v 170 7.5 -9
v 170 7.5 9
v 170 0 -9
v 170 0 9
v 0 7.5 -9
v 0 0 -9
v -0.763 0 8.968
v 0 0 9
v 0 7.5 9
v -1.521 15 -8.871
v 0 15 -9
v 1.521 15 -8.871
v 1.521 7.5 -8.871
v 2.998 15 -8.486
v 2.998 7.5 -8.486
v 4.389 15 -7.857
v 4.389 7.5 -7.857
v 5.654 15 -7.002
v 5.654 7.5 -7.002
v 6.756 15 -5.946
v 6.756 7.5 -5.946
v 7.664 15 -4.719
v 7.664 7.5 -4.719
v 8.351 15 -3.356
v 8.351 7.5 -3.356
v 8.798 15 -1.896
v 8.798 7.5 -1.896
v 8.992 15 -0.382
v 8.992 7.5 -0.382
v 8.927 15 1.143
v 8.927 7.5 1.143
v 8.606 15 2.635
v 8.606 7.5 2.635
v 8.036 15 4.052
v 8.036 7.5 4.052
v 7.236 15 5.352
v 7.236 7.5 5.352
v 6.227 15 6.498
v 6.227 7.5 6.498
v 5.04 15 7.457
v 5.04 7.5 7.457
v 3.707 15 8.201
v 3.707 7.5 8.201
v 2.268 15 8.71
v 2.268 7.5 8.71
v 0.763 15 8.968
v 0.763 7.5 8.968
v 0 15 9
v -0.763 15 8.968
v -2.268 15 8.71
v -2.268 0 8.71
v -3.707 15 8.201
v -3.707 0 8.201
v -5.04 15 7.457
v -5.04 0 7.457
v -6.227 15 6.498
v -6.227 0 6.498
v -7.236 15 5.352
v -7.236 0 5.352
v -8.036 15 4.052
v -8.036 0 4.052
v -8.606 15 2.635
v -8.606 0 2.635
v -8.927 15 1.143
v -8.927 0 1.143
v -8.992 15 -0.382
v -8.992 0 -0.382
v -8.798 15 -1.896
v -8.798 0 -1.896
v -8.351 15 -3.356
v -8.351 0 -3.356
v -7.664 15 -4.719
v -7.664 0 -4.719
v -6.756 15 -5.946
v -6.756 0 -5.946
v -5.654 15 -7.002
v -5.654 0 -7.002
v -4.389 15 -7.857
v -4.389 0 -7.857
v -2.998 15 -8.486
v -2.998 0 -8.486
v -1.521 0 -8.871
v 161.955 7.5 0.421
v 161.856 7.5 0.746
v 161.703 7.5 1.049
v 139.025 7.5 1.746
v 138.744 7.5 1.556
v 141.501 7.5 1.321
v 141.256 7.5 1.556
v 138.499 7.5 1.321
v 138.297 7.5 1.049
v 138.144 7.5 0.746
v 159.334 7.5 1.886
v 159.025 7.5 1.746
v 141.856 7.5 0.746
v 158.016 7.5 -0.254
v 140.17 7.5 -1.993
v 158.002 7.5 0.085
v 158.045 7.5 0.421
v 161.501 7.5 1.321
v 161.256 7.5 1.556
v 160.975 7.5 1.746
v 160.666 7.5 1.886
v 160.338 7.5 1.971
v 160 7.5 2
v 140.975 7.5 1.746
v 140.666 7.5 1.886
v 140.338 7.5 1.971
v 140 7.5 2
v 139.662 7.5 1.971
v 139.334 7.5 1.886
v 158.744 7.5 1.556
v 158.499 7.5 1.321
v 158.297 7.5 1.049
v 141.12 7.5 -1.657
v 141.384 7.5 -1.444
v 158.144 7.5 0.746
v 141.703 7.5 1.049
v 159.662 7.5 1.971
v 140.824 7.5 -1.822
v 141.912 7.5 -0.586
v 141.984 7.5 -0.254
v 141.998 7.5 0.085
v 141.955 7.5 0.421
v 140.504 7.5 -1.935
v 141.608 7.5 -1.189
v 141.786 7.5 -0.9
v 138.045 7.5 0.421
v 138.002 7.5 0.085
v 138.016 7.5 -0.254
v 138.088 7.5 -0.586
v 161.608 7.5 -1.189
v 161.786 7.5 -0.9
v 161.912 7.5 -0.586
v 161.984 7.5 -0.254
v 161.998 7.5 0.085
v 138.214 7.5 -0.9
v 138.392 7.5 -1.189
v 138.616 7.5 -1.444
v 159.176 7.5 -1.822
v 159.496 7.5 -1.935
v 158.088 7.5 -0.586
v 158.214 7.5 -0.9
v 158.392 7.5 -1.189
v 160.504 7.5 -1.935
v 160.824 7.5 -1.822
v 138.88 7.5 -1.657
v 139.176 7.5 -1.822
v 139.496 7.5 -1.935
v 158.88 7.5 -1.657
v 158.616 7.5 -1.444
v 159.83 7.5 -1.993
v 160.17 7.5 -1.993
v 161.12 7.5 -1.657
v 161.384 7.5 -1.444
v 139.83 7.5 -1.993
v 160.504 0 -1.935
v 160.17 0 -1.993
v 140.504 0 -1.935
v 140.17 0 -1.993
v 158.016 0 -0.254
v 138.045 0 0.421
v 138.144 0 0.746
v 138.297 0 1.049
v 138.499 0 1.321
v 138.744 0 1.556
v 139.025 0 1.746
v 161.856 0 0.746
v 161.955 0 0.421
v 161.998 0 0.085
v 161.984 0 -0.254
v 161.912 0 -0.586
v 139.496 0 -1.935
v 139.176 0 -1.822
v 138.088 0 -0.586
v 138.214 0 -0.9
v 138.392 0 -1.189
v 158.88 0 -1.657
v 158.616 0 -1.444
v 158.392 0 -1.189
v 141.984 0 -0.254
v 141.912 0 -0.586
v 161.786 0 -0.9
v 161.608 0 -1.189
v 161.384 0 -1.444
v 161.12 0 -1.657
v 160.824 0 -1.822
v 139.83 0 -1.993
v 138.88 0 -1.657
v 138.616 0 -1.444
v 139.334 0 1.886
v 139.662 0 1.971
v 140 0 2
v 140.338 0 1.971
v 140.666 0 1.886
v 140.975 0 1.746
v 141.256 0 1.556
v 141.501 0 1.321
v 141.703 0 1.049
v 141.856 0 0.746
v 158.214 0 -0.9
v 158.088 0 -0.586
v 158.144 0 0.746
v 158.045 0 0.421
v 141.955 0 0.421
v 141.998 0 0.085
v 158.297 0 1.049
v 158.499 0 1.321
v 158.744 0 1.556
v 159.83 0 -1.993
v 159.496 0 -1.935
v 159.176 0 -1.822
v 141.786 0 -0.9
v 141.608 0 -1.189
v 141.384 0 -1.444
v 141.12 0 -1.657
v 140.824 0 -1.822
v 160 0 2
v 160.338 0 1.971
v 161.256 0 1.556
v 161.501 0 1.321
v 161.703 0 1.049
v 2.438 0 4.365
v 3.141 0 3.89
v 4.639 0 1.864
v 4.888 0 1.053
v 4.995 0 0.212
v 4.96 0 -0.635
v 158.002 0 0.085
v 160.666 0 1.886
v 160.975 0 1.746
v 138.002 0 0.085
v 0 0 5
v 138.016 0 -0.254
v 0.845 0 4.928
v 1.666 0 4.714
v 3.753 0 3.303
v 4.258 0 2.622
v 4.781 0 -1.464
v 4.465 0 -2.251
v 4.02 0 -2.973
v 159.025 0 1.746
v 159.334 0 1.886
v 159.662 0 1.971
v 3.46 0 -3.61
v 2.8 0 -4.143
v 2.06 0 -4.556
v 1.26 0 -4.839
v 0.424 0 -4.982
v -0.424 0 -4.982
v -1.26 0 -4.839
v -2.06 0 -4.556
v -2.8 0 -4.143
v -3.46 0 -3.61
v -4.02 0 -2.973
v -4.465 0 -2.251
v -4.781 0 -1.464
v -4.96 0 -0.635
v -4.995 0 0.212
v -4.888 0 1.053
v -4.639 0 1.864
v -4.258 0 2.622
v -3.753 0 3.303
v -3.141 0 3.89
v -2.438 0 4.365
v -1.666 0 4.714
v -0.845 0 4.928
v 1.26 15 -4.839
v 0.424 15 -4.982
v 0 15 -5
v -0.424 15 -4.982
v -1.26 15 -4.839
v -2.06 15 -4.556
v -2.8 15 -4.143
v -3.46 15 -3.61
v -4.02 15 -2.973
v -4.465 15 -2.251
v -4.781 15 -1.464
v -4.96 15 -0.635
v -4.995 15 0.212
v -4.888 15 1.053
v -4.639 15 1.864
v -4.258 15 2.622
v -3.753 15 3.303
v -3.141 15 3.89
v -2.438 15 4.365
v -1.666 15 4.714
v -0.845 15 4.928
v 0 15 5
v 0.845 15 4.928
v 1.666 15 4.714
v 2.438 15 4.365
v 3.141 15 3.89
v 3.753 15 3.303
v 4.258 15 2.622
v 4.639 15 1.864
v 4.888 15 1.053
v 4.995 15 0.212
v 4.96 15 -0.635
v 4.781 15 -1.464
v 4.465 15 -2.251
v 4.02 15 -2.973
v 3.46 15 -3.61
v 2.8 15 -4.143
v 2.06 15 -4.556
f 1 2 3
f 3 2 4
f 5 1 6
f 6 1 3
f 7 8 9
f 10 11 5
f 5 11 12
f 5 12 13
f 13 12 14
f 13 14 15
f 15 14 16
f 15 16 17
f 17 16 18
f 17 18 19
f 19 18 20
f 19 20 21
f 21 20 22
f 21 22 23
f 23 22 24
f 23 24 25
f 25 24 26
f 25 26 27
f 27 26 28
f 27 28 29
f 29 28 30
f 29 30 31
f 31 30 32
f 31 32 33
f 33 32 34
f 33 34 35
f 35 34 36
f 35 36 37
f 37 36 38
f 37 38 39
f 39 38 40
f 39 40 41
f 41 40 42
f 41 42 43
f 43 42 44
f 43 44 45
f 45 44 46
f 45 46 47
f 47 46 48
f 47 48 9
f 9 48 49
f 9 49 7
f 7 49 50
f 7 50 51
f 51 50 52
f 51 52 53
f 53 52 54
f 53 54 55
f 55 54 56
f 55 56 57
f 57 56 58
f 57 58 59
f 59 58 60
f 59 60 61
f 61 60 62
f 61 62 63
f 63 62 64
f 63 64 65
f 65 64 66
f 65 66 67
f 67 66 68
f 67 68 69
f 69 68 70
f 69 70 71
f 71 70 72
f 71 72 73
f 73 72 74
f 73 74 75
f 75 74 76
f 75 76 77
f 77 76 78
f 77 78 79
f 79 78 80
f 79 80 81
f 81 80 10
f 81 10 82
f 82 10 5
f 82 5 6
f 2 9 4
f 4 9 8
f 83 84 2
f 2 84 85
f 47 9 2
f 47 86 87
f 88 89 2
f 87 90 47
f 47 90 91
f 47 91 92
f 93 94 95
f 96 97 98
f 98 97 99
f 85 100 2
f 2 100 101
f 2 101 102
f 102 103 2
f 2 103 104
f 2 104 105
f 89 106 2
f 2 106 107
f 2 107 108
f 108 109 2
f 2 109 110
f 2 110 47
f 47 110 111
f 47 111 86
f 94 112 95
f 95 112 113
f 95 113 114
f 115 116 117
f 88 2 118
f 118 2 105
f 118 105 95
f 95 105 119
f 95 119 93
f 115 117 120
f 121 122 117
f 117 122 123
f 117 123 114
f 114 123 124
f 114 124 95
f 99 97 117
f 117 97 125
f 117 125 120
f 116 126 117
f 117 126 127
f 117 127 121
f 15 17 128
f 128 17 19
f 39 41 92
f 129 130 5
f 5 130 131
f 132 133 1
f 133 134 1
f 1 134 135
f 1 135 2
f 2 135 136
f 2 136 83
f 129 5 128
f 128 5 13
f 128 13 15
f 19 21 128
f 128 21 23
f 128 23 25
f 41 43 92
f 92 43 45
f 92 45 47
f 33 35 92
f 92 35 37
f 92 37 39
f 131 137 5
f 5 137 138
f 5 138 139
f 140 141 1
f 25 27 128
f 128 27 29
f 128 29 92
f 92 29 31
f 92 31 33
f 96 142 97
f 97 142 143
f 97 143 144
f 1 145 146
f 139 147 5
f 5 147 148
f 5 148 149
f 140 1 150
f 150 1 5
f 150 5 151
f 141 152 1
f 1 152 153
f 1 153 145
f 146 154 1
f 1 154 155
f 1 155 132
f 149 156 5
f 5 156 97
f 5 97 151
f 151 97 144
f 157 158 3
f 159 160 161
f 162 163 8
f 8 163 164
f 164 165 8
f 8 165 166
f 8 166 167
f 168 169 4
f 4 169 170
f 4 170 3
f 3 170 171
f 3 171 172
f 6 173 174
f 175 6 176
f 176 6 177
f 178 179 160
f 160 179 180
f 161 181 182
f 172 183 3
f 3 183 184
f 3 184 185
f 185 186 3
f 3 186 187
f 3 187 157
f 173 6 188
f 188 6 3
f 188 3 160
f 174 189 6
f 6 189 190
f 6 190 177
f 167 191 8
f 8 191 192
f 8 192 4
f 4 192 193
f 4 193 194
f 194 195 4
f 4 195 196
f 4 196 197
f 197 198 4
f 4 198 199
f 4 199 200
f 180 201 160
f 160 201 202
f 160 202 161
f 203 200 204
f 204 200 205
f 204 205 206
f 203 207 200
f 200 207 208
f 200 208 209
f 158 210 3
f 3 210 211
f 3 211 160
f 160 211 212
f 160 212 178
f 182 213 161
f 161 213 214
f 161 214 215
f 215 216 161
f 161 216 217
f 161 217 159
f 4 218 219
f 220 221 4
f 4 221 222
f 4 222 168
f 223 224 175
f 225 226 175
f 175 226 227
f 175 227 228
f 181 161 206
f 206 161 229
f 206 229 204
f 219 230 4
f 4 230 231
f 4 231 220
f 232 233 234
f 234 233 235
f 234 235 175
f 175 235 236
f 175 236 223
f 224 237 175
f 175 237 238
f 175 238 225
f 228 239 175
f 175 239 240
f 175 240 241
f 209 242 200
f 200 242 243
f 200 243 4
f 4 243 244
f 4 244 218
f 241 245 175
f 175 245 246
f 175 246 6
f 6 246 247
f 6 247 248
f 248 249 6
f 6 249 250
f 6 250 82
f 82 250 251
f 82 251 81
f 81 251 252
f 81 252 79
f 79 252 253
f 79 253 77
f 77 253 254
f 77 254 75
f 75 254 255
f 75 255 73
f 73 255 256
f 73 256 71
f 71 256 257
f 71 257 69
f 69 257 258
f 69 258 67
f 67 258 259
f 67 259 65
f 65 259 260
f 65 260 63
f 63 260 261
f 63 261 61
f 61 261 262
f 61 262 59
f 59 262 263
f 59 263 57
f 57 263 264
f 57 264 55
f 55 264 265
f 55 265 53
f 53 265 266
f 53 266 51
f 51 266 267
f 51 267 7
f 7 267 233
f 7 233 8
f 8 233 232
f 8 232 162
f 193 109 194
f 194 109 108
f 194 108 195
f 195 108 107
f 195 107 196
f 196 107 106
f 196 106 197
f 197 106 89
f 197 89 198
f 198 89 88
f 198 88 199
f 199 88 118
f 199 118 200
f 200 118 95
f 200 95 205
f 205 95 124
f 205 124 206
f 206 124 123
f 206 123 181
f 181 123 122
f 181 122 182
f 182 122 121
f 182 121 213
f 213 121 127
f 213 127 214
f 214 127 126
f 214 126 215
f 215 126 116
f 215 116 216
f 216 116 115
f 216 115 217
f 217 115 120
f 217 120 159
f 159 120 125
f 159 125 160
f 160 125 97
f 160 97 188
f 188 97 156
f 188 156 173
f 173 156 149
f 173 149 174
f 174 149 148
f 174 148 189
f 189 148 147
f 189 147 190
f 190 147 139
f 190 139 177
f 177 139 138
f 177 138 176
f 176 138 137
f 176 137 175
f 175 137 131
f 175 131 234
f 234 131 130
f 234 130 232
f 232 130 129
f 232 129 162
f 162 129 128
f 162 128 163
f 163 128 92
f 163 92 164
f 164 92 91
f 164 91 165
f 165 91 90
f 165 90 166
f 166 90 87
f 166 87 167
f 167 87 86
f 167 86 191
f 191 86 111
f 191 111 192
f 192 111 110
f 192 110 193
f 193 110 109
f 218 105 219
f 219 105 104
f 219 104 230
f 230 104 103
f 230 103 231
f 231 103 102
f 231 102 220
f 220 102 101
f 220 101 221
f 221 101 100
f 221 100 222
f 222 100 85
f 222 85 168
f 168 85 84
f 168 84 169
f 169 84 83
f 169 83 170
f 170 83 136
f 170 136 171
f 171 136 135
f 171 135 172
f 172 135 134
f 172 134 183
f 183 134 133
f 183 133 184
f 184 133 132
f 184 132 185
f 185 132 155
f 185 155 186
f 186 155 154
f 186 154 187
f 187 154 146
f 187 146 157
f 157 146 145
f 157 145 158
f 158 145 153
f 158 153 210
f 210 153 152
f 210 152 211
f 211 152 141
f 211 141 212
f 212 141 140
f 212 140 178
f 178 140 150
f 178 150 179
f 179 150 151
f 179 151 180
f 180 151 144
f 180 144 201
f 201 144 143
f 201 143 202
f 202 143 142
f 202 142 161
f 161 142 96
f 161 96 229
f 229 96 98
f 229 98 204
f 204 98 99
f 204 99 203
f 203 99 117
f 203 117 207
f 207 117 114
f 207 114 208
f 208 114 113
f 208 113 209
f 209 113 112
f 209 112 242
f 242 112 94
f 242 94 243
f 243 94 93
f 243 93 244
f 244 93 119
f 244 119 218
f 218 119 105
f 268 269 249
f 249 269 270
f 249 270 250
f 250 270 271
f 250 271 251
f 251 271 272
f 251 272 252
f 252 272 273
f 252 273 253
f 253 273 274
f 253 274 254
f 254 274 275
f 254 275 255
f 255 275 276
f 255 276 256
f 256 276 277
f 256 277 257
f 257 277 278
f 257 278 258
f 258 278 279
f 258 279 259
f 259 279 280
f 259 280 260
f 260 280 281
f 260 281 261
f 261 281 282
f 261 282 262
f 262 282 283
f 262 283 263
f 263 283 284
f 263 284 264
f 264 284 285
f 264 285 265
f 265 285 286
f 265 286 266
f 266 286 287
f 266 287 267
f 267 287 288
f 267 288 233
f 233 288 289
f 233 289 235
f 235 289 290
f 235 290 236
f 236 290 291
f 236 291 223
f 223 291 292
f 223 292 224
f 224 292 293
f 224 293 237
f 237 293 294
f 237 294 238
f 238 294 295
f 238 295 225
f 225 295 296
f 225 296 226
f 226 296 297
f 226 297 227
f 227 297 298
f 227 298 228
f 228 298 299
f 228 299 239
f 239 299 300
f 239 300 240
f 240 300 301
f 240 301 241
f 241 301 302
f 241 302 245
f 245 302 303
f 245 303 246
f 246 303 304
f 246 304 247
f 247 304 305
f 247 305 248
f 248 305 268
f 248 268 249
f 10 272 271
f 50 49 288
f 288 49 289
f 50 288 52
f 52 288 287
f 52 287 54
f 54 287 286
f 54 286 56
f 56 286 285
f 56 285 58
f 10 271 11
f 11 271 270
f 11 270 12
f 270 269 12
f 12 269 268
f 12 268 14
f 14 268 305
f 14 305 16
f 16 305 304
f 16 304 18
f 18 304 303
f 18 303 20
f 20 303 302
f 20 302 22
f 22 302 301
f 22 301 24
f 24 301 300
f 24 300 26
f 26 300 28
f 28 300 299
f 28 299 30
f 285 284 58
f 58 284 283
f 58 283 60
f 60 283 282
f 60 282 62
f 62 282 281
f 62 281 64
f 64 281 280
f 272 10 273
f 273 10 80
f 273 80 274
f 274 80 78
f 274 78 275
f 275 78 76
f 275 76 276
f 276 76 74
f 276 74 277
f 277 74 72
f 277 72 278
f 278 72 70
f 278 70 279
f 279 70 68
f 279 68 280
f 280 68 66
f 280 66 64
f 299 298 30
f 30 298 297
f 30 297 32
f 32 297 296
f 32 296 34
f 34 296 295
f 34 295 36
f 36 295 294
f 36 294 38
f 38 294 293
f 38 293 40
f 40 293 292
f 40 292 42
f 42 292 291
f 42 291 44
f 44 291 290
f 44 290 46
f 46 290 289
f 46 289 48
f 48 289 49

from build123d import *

# Parameters (mm, degrees)
BOSS_EXTRUDE1_DEPTH = 7.5
SKETCH2_R           = 5
SKETCH2_R_2         = 2
CUT_EXTRUDE1_DEPTH  = 171.403198327
SKETCH3_R           = 9
BOSS_EXTRUDE2_DEPTH = 7.5
SKETCH4_R           = 5
CUT_EXTRUDE2_DEPTH  = 171.403198327


with BuildPart() as part:
    # Sketch1 → Boss-Extrude1 (new body)
    with BuildSketch(Plane(origin=(0, 0, 0), x_dir=(1, 0, 0), z_dir=(0, 1, 0))):
        with BuildLine():
            Line((0, 9), (170, 9))
            Line((170, 9), (170, -9))
            Line((170, -9), (0, -9))
            ThreePointArc((0, -9), (-9, 0), (0, 9))
        make_face()
    extrude(amount=BOSS_EXTRUDE1_DEPTH)

    # Sketch2 → Cut-Extrude1 (cut, through all)
    with BuildSketch(Plane(origin=(0, 7.5, 0), x_dir=(1, 0, 0), z_dir=(0, 1, 0))):
        with Locations(Location((0, 0, 0), (0, 0, 270))):
            Circle(SKETCH2_R)
        with Locations(Location((160, 0, 0), (0, 0, 270))):
            Circle(SKETCH2_R_2)
        with Locations(Location((140, 0, 0), (0, 0, 270))):
            Circle(SKETCH2_R_2)
    extrude(amount=-CUT_EXTRUDE1_DEPTH, mode=Mode.SUBTRACT)

    # Sketch3 → Boss-Extrude2 (add)
    with BuildSketch(Plane(origin=(0, 7.5, 0), x_dir=(1, 0, 0), z_dir=(0, 1, 0))):
        with Locations(Location((0, 0, 0), (0, 0, 270))):
            Circle(SKETCH3_R)
    extrude(amount=BOSS_EXTRUDE2_DEPTH)

    # Sketch4 → Cut-Extrude2 (cut, through all)
    with BuildSketch(Plane.XZ.offset(-7.5)):
        with Locations(Location((0, 0, 0), (0, 0, 90))):
            Circle(SKETCH4_R)
    extrude(amount=-CUT_EXTRUDE2_DEPTH, mode=Mode.SUBTRACT)


solid = part.part
